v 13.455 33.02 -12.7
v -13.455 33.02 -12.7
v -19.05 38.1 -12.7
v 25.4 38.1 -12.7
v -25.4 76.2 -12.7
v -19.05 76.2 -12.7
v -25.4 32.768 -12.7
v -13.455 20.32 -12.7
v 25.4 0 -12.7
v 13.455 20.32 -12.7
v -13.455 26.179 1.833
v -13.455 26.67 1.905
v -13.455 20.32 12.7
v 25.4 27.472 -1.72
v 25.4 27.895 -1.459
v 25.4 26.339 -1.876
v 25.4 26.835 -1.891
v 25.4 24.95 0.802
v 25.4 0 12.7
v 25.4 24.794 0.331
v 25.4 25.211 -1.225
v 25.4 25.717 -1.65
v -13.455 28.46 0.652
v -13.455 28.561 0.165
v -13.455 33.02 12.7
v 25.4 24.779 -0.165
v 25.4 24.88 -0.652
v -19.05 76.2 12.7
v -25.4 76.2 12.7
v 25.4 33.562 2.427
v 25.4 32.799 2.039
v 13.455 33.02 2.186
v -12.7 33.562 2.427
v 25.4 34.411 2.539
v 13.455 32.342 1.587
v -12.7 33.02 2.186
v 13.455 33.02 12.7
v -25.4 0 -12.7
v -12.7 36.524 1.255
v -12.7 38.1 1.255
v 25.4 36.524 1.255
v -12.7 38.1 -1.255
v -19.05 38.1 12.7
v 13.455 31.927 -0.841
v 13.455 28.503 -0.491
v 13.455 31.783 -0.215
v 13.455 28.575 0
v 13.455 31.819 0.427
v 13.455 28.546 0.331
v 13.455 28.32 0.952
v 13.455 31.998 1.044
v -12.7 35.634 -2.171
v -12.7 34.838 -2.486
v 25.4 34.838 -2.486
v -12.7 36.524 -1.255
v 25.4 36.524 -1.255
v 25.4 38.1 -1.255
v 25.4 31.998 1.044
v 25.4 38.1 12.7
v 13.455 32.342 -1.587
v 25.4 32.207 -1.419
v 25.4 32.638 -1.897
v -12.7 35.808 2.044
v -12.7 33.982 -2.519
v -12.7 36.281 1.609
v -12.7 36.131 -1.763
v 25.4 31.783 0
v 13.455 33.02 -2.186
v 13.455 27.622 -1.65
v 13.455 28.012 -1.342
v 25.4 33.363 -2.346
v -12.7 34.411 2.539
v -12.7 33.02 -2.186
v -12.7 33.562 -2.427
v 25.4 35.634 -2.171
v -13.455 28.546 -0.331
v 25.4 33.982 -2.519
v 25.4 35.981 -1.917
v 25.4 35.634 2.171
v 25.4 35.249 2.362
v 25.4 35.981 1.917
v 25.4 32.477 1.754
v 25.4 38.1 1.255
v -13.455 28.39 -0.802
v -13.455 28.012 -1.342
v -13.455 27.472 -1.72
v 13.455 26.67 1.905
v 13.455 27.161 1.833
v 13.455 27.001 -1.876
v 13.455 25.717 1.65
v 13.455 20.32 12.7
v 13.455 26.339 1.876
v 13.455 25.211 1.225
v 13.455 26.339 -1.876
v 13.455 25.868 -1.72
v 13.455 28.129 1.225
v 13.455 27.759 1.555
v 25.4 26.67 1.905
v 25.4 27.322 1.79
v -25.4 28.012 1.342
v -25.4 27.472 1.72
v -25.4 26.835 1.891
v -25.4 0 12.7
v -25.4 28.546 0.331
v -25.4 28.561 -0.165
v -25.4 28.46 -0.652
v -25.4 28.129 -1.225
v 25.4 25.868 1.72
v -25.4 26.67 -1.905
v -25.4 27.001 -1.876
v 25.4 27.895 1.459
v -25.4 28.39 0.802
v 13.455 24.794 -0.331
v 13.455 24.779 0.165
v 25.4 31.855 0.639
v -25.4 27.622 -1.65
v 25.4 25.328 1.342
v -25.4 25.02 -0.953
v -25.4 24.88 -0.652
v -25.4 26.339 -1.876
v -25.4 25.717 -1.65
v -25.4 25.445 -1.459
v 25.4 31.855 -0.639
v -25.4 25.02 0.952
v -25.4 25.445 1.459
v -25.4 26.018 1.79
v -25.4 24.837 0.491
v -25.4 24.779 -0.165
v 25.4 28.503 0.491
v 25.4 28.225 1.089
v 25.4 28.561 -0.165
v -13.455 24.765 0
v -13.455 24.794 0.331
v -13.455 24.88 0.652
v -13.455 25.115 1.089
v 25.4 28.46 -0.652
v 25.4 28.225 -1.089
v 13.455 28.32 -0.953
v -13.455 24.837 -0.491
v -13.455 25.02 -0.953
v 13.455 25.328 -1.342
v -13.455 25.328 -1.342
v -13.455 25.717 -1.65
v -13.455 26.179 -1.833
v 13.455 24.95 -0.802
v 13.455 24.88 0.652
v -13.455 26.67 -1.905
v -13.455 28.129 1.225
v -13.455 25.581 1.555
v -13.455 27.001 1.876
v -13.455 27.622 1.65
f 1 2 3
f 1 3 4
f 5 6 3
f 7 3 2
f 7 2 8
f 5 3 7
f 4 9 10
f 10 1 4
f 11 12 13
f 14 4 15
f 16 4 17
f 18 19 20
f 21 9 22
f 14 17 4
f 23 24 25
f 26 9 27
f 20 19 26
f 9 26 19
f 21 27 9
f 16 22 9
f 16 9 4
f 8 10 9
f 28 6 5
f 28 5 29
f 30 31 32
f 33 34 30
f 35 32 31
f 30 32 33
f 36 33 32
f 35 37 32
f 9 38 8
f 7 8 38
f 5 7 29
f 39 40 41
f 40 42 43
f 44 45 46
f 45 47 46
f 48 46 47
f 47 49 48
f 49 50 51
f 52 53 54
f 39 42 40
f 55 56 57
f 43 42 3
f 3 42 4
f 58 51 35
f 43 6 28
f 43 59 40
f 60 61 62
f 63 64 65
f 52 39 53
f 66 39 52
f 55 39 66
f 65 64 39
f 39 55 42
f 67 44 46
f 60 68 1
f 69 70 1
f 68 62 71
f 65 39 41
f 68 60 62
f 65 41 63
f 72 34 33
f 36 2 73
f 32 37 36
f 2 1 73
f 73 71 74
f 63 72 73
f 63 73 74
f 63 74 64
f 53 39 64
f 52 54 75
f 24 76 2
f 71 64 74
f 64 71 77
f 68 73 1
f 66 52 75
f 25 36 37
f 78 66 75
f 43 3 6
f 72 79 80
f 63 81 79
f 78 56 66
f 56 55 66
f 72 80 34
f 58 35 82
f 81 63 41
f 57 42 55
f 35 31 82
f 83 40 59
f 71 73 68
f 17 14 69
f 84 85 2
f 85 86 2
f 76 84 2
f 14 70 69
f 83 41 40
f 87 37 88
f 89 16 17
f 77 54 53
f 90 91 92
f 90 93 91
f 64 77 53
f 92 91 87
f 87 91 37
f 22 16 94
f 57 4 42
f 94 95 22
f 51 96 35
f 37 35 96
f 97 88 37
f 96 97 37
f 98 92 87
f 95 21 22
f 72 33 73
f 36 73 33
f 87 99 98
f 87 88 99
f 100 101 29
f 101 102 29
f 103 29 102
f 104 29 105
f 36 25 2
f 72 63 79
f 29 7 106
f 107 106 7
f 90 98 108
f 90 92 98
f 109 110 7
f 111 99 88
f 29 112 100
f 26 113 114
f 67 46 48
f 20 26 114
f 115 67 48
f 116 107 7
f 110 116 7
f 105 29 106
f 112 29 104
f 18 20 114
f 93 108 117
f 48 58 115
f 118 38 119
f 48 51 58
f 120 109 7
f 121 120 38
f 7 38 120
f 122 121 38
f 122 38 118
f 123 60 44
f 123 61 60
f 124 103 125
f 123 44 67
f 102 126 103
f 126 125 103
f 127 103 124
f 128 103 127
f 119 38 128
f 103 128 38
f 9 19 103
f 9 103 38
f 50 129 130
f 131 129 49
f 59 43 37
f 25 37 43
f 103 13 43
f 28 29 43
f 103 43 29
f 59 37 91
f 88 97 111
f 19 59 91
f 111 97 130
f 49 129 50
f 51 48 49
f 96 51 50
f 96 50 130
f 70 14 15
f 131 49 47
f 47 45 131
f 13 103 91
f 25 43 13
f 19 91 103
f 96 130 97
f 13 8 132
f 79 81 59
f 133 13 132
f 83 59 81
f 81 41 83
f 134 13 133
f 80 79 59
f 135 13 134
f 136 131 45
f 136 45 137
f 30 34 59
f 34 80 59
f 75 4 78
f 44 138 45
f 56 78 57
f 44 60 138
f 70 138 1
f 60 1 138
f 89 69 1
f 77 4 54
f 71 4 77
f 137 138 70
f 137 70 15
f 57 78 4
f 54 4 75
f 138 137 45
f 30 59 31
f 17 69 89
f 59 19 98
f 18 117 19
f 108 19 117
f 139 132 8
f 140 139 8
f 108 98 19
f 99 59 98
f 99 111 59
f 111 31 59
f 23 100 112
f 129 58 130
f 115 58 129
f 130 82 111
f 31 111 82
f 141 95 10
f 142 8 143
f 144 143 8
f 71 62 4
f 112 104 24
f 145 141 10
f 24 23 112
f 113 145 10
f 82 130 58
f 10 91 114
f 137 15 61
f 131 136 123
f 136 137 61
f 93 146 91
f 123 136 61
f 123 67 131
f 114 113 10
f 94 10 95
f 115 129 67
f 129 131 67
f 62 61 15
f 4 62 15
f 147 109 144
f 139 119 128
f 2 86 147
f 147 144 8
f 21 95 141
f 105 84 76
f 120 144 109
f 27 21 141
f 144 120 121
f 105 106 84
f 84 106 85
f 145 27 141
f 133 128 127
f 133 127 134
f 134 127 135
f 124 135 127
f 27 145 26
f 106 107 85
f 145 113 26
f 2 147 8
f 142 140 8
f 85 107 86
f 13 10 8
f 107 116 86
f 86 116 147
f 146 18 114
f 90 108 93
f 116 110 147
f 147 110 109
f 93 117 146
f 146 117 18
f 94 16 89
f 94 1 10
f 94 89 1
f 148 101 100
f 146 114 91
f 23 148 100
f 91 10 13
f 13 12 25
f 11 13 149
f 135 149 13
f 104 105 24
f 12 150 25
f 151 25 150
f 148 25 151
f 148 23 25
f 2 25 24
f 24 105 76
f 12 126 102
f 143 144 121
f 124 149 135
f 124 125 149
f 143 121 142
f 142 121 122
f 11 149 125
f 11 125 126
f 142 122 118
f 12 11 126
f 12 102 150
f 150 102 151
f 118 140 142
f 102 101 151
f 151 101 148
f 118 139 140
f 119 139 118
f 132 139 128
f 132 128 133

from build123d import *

# Parameters (mm, degrees)
SKETCH1_W               = 50.8
SKETCH1_H               = 25.4
BOSS_EXTRUDE1_DEPTH     = 38.1
CUT_EXTRUDE1_DEPTH      = 53.363441445
CUT_EXTRUDE1_DEPTH_BACK = 53.363441445
SKETCH2_W               = 26.909263032
SKETCH2_H               = 12.7
CUT_EXTRUDE2_DEPTH      = 65.757547823
CUT_EXTRUDE2_DEPTH_BACK = 65.757547823
SKETCH3_R               = 1.905
SKETCH4_W               = 6.35
SKETCH4_H               = 25.4
BOSS_EXTRUDE2_DEPTH     = 38.1
CUT_EXTRUDE3_DEPTH      = 38.1


with BuildPart() as part:
    # Sketch1 → Boss-Extrude1 (new body)
    with BuildSketch(Plane(origin=(0, 0, 0), x_dir=(1, 0, 0), z_dir=(0, 1, 0))):
        Rectangle(SKETCH1_W, SKETCH1_H)
    extrude(amount=BOSS_EXTRUDE1_DEPTH)

    # Sketch2 → Cut-Extrude1 (cut, two sides: drawn at the far end of the back side and taken through both)
    with BuildSketch(Plane.XY.offset(12.7).offset(-CUT_EXTRUDE1_DEPTH_BACK)):
        with Locations((0, 26.67)):
            Rectangle(SKETCH2_W, SKETCH2_H)
    extrude(amount=CUT_EXTRUDE1_DEPTH + CUT_EXTRUDE1_DEPTH_BACK, mode=Mode.SUBTRACT)

    # Sketch3 → Cut-Extrude2 (cut, two sides: drawn at the far end of the back side and taken through both)
    with BuildSketch(Plane.ZY.offset(25.4).offset(-CUT_EXTRUDE2_DEPTH_BACK)):
        with Locations((0, 26.67)):
            Circle(SKETCH3_R)
    extrude(amount=CUT_EXTRUDE2_DEPTH + CUT_EXTRUDE2_DEPTH_BACK, mode=Mode.SUBTRACT)

    # Sketch4 → Boss-Extrude2 (add)
    with BuildSketch(Plane(origin=(0, 38.1, 0), x_dir=(1, 0, 0), z_dir=(0, 1, 0))):
        with Locations((-22.225, 0)):
            Rectangle(SKETCH4_W, SKETCH4_H)
    extrude(amount=BOSS_EXTRUDE2_DEPTH)

    # Sketch5 → Cut-Extrude3 (cut)
    with BuildSketch(Plane(origin=(25.4, 0, 0), x_dir=(0, 0, -1), z_dir=(1, 0, 0))):
        with BuildLine():
            Line((-1.254617423, 38.1), (1.254617423, 38.1))
            Line((1.254617423, 38.1), (1.254617423, 36.523684183))
            ThreePointArc((1.254617423, 36.523684183), (0, 31.773868069), (-1.254617423, 36.523684183))
            Line((-1.254617423, 36.523684183), (-1.254617423, 38.1))
        make_face()
    extrude(amount=-CUT_EXTRUDE3_DEPTH, mode=Mode.SUBTRACT)


solid = part.part
